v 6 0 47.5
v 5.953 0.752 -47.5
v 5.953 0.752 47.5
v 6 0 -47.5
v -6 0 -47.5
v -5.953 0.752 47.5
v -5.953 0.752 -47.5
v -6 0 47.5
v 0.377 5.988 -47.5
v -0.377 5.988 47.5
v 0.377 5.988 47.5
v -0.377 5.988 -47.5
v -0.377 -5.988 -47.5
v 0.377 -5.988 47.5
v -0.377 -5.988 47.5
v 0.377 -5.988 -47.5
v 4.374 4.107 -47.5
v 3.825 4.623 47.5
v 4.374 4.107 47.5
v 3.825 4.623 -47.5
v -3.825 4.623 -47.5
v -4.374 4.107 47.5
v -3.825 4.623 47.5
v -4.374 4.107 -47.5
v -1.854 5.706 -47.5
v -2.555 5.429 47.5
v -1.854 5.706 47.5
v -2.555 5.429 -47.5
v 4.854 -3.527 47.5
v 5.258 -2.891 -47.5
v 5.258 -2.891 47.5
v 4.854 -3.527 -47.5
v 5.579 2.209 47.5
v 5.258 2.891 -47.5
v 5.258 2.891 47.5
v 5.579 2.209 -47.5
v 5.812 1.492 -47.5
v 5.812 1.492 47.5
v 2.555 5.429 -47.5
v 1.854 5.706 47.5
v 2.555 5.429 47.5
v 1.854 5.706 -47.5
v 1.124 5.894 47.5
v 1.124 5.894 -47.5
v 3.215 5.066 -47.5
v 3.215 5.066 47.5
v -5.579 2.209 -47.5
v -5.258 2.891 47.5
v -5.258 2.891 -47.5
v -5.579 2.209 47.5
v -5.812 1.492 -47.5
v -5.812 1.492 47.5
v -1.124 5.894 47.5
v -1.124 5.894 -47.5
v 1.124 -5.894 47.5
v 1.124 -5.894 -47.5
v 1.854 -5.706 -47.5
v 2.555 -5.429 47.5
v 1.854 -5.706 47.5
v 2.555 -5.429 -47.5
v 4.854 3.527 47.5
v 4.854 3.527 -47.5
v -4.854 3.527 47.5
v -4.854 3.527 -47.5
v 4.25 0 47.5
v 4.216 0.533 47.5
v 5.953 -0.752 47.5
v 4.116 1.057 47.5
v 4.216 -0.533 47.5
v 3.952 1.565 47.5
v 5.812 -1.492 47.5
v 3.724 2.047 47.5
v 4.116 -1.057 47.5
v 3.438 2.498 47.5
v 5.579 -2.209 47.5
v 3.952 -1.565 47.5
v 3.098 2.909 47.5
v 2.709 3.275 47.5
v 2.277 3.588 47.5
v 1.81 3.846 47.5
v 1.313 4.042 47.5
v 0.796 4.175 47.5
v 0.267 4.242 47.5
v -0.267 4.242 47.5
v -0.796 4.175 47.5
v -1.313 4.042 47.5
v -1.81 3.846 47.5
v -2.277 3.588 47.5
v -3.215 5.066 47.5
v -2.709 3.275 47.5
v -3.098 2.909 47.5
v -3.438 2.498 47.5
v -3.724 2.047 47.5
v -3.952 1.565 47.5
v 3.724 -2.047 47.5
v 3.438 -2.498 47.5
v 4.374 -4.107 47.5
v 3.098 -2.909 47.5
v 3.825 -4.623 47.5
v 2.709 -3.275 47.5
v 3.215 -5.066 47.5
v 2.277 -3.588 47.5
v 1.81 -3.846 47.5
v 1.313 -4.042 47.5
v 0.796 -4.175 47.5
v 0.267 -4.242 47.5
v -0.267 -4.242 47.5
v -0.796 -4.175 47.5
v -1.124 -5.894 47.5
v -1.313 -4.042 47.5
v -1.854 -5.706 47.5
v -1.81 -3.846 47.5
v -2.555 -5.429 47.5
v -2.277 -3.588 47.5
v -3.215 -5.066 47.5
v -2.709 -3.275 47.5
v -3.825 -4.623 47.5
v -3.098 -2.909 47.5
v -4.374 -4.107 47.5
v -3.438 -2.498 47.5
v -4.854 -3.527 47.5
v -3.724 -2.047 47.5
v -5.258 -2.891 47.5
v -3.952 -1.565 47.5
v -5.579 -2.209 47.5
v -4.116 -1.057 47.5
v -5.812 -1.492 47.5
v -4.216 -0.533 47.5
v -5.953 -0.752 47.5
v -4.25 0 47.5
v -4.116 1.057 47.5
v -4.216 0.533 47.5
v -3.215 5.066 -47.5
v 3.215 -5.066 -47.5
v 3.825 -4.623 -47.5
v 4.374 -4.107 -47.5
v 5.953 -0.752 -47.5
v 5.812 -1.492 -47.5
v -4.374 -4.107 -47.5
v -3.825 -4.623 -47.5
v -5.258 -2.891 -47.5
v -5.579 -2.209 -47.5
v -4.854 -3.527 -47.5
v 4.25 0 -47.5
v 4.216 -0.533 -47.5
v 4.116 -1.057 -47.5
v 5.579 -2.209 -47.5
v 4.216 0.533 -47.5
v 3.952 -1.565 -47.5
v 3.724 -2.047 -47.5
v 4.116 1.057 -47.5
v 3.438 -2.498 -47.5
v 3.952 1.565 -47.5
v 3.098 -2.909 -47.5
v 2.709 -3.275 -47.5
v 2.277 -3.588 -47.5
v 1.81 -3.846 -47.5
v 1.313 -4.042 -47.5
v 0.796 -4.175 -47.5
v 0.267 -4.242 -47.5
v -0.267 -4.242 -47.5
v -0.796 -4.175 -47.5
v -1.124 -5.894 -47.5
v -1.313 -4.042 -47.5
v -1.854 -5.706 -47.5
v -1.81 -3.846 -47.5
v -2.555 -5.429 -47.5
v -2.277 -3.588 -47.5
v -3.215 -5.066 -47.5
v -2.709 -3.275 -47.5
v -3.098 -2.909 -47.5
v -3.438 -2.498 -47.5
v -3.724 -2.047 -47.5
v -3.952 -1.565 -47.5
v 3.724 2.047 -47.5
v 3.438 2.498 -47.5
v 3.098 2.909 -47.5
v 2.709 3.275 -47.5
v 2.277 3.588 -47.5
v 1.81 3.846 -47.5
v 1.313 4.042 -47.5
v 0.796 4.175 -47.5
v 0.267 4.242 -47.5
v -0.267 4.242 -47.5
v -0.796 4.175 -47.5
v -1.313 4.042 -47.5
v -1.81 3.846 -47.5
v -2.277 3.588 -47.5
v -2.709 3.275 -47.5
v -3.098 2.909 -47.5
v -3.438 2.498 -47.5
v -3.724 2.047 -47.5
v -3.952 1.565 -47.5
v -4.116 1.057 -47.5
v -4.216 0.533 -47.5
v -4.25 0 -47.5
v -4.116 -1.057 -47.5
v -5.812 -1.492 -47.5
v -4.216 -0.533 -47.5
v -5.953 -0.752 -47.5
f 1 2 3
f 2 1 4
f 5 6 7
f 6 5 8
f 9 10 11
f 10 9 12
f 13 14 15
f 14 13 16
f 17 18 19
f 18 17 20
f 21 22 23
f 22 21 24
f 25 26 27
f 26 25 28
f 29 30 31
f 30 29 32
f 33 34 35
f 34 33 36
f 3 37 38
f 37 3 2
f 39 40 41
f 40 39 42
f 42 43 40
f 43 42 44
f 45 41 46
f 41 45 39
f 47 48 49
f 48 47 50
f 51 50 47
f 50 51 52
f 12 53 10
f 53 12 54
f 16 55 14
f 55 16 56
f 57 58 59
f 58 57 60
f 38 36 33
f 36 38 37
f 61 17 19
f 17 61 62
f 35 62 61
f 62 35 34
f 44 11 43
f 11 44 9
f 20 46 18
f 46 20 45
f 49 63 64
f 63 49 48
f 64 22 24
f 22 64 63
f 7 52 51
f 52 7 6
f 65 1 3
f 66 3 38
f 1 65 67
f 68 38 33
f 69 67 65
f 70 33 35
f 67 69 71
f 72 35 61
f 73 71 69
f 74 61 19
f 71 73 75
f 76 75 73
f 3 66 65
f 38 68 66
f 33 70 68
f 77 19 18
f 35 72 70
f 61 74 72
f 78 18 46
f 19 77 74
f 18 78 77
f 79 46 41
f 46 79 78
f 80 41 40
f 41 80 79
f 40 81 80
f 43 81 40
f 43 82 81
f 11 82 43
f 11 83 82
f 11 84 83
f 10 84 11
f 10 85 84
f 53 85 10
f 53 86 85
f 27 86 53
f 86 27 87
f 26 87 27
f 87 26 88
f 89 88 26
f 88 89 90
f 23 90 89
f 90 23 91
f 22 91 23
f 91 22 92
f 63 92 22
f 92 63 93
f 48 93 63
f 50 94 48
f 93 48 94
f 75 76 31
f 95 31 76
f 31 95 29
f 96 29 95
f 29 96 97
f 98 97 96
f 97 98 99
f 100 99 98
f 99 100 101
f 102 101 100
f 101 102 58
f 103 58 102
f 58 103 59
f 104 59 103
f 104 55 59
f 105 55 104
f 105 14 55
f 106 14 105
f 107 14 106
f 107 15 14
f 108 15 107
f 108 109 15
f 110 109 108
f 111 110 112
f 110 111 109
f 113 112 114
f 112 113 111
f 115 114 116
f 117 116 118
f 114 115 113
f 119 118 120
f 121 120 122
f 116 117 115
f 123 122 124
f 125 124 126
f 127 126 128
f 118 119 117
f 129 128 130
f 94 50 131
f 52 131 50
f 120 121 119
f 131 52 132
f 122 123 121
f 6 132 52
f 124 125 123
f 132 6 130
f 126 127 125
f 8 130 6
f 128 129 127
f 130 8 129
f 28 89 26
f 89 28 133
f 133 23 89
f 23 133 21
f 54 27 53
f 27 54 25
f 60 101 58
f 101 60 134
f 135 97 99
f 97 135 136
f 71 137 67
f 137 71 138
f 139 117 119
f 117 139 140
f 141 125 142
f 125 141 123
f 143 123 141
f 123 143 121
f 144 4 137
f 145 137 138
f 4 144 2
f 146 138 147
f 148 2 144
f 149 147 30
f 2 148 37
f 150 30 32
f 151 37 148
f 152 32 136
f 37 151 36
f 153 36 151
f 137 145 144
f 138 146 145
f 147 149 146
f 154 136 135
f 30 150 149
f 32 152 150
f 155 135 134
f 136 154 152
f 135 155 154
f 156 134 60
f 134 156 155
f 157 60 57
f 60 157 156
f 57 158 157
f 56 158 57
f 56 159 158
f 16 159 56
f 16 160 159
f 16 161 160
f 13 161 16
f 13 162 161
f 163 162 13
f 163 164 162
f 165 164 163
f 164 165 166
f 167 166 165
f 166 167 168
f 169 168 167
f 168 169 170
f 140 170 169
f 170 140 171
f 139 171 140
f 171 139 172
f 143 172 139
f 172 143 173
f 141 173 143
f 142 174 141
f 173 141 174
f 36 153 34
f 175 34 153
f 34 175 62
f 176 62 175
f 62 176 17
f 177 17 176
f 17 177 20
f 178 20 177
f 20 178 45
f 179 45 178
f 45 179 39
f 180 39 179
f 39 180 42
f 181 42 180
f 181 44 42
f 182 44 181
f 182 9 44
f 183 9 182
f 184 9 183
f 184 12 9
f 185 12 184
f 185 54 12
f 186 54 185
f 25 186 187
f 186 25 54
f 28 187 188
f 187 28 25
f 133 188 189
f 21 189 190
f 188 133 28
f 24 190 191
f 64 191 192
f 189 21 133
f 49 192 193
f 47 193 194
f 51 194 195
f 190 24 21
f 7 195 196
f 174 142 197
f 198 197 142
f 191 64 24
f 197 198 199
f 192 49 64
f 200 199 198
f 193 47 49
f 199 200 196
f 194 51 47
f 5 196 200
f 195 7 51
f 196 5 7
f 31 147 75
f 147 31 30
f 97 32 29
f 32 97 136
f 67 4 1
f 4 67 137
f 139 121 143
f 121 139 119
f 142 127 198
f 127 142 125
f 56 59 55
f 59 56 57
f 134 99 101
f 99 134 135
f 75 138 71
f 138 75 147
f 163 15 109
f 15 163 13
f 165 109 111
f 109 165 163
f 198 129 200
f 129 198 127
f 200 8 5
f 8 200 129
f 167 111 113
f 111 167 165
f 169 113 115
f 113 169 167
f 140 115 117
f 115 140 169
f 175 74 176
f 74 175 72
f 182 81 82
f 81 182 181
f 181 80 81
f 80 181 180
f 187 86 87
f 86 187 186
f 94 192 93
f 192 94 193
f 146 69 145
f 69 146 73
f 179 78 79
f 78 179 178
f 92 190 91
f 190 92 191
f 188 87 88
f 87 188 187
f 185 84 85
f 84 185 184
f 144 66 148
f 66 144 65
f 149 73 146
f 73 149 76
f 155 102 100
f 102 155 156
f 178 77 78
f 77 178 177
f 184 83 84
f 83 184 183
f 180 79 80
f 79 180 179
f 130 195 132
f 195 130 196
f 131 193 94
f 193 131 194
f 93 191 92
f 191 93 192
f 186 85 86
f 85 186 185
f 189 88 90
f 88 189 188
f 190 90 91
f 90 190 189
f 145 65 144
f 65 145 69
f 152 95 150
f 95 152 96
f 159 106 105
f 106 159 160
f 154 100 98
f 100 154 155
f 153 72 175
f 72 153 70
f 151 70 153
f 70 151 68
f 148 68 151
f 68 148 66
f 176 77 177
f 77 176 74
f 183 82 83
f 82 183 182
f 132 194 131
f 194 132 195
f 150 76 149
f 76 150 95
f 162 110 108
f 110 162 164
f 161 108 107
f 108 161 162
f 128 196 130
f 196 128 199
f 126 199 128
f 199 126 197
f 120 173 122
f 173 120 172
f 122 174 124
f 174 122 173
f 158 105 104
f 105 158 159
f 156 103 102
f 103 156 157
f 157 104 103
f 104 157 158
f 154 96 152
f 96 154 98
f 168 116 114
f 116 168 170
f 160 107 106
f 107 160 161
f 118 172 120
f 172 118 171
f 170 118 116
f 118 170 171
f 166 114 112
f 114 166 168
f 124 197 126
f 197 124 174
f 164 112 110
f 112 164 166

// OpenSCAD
$fn = 50;


difference() {
	union() {
		translate(v = [0, 0, -47.5000000000]) {
			cylinder(h = 95, r = 6.0000000000);
		}
	}
	union() {
		translate(v = [0, 0, -100.0000000000]) {
			cylinder(h = 200, r = 4.2500000000);
		}
	}
}
